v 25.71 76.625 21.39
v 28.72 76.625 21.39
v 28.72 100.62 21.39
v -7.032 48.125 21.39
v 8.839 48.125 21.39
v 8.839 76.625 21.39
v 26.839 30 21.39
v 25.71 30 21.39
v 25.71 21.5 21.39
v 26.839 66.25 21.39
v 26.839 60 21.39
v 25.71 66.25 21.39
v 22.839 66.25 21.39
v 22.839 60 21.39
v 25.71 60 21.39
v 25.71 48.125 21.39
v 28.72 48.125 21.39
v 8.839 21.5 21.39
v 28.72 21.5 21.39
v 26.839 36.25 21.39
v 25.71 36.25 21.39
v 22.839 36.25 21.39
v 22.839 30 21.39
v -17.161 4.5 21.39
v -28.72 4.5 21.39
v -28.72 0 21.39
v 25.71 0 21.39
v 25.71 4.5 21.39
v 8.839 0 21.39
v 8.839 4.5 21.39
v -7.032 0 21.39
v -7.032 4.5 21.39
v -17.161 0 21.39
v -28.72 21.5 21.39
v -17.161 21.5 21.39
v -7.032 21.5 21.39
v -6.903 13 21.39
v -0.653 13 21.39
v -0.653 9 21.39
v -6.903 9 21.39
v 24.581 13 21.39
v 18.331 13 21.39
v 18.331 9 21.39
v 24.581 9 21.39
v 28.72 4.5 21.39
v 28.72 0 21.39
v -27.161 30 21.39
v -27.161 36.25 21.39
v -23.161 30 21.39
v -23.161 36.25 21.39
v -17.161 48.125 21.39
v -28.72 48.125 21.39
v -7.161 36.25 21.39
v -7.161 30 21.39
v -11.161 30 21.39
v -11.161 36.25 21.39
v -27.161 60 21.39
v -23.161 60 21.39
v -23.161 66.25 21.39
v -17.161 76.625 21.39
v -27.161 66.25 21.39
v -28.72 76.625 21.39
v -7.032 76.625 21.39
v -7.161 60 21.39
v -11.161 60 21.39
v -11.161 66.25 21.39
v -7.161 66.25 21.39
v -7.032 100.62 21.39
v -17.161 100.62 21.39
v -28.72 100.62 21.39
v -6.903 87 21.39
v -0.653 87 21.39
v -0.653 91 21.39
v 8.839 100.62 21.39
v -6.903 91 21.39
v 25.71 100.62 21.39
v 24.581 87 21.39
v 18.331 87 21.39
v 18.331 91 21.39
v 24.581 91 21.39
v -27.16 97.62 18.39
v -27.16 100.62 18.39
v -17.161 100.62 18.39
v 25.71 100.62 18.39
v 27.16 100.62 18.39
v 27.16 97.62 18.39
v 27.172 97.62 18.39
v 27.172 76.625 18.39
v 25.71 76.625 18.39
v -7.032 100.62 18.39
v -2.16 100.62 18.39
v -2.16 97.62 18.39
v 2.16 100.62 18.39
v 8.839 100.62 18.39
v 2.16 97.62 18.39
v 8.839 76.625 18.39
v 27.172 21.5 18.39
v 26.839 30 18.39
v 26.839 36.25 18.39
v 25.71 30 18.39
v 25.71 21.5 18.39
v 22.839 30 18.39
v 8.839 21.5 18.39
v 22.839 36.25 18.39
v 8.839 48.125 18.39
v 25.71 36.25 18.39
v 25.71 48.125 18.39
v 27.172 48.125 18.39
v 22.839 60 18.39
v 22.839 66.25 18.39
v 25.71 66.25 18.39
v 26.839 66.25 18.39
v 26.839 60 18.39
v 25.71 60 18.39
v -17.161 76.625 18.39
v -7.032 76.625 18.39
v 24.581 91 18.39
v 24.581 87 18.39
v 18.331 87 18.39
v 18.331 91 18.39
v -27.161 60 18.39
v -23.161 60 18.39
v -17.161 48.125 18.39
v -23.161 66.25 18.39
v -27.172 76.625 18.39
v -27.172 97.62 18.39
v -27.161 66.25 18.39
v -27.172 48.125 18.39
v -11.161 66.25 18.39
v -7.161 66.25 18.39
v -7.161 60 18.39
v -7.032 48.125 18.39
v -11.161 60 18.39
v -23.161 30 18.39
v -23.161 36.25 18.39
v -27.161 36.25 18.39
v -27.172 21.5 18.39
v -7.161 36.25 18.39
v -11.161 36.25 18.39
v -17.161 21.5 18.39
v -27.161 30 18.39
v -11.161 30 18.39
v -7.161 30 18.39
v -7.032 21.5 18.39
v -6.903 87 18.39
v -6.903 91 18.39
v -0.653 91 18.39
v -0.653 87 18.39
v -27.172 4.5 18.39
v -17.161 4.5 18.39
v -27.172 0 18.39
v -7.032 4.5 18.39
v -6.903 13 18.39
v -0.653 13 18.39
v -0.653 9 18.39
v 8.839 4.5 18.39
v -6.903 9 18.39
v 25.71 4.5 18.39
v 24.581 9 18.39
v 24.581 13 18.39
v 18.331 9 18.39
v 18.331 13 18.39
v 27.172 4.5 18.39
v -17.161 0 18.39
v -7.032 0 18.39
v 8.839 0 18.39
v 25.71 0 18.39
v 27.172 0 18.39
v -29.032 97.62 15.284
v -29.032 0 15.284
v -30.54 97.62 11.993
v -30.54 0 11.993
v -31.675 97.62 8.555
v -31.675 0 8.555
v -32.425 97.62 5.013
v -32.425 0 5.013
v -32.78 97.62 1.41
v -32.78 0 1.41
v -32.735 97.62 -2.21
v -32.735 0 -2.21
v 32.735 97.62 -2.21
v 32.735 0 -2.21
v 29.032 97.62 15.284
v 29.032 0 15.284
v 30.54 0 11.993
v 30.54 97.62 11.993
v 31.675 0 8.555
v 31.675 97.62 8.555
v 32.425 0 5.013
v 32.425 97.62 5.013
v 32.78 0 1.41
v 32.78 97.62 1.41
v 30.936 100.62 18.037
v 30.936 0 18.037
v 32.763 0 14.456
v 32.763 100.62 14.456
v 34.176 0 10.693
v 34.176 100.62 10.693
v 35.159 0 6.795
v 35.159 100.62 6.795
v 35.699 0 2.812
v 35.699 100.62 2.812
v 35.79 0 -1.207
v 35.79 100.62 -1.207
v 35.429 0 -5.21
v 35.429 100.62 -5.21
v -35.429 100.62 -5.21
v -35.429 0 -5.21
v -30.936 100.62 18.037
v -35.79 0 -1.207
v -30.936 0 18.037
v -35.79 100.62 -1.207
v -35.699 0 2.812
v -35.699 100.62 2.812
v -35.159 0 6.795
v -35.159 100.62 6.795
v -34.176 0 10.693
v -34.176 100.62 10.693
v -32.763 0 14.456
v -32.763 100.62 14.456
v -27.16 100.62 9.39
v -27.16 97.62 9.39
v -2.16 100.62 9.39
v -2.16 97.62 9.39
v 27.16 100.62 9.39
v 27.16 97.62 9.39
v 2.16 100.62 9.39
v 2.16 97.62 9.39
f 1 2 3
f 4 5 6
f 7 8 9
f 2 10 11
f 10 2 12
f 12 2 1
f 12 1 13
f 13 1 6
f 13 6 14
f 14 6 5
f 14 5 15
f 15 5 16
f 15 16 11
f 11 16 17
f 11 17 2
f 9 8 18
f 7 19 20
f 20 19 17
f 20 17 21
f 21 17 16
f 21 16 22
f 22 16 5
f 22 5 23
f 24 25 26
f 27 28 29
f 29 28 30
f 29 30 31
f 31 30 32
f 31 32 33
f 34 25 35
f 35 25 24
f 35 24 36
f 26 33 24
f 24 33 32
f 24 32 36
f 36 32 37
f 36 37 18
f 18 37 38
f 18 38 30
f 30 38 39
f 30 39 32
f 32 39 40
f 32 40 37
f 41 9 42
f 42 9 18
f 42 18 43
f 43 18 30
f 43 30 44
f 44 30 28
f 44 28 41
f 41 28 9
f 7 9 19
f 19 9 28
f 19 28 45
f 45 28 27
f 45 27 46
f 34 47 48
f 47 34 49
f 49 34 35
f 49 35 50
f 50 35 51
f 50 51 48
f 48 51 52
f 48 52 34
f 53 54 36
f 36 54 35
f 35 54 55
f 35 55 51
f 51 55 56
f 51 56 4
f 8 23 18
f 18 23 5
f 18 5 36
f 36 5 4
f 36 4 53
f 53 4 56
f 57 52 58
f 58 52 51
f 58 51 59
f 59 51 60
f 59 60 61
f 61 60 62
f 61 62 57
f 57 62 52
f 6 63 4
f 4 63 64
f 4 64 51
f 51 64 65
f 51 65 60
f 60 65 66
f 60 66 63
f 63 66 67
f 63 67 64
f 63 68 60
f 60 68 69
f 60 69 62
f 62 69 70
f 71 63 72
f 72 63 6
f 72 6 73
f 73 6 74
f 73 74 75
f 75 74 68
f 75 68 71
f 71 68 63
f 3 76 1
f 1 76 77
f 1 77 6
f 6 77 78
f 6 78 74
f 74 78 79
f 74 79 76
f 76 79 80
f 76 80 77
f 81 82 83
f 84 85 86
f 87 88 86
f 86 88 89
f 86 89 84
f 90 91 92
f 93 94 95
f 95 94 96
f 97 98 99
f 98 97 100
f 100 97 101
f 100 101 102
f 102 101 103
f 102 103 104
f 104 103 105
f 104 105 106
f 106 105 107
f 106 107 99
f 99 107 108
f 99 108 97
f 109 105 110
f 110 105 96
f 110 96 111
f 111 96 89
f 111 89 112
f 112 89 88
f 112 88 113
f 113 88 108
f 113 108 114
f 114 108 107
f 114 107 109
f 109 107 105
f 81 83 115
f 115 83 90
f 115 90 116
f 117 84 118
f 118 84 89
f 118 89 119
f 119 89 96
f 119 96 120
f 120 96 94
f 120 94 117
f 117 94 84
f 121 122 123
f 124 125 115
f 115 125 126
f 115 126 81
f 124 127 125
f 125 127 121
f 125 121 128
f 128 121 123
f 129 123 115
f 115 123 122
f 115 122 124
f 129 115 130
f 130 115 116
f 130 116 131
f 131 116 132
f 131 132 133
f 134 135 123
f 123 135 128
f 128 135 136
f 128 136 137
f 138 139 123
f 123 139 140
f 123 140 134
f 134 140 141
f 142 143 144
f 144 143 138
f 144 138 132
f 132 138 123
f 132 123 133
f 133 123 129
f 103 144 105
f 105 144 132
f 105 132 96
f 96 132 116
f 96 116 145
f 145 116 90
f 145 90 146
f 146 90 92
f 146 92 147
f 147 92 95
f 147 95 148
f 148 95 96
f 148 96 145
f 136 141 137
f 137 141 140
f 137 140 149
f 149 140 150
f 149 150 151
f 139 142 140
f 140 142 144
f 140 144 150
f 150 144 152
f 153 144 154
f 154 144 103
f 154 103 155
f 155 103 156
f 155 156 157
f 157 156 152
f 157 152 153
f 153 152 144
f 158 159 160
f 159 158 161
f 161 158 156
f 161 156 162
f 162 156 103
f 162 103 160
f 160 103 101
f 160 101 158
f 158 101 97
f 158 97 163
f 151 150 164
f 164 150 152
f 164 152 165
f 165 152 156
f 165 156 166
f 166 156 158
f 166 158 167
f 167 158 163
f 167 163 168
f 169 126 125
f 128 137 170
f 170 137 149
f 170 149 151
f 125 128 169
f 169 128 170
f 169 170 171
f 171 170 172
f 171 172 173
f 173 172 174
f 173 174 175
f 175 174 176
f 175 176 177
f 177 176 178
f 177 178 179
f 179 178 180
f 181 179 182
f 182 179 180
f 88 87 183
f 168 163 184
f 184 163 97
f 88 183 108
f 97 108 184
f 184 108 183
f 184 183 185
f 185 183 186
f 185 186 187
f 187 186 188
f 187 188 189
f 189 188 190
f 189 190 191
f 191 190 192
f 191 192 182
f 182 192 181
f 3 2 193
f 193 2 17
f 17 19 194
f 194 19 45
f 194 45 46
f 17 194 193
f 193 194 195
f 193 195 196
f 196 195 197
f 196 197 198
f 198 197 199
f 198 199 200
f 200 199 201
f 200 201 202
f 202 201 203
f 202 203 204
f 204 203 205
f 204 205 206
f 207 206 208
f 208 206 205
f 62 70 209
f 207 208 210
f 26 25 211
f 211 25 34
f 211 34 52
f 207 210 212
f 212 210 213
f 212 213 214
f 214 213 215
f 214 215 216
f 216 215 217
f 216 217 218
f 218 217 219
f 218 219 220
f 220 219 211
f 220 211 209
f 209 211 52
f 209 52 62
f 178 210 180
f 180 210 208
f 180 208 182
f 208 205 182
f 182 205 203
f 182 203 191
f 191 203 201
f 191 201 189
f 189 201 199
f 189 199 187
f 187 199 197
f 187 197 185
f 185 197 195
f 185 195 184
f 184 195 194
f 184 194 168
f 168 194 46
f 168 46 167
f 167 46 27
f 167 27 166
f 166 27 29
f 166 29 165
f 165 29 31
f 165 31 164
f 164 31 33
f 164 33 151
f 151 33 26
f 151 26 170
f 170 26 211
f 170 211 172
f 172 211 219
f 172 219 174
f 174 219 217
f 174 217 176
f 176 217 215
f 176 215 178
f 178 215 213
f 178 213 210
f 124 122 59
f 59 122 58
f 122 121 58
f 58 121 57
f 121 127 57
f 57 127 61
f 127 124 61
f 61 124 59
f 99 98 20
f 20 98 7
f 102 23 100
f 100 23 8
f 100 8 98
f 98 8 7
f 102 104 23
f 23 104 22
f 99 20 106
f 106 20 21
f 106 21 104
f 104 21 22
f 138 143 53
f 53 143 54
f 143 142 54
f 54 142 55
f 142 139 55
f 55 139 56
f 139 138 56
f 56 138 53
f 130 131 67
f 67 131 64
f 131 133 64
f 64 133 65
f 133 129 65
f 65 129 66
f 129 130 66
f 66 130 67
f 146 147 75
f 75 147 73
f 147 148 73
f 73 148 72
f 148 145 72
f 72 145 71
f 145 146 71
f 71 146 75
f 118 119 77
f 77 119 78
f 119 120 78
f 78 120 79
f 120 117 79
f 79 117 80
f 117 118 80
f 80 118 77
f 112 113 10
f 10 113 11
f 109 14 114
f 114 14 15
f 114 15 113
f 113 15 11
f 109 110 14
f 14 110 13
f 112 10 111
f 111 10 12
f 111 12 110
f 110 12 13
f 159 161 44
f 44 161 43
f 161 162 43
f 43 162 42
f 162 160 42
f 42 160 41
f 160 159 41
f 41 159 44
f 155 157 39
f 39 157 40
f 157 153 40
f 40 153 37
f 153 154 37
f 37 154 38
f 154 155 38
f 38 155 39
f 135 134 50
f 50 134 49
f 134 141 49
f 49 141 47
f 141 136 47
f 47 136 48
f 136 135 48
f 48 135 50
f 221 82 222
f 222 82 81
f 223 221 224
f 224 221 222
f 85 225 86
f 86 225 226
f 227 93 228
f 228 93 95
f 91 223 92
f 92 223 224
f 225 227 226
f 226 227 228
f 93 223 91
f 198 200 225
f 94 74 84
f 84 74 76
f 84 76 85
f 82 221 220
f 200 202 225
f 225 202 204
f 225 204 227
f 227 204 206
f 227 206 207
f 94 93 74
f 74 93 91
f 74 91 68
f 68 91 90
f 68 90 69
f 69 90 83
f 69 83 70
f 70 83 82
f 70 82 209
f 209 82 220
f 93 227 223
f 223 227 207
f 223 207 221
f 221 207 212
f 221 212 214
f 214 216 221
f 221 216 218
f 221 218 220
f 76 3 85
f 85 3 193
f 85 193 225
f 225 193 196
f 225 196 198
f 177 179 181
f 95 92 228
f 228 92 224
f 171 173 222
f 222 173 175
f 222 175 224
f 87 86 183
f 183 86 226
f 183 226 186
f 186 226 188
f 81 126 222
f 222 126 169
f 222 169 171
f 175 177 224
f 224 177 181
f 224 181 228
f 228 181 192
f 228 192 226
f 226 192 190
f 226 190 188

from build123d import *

# Parameters (mm, degrees)
BOSS_EXTRUDE1_DEPTH = 97.62
SKETCH2_W           = 4
SKETCH2_H           = 6.25
SKETCH2_W_2         = 6.25
SKETCH2_H_2         = 4
CUT_EXTRUDE1_DEPTH  = 3
SKETCH5_W           = 25
SKETCH5_H           = 9
BOSS_EXTRUDE4_DEPTH = 3


with BuildPart() as part:
    # Sketch1 → Boss-Extrude1 (new body)
    with BuildSketch(Plane(origin=(0, 0, 0), x_dir=(1, 0, 0), z_dir=(0, 1, 0))):
        with BuildLine():
            Line((-32.735485333, 2.21), (-35.741740305, 2.21))
            ThreePointArc((-35.741740305, 2.21), (-34.793989799, -8.469614742), (-30.727251748, -18.39))
            Line((-30.727251748, -18.39), (-27.171750036, -18.39))
            ThreePointArc((-27.171750036, -18.39), (-31.675056628, -8.554933525), (-32.735485333, 2.21))
        make_face()
        with BuildLine():
            ThreePointArc((35.81, 0), (35.792931008, 1.105526954), (35.741740305, 2.21))
            Line((35.741740305, 2.21), (32.735485333, 2.21))
            ThreePointArc((32.735485333, 2.21), (32.791366042, 1.105627925), (32.81, 0))
            ThreePointArc((32.81, 0), (31.368783995, -9.617457599), (27.171750036, -18.39))
            Line((27.171750036, -18.39), (30.727251748, -18.39))
            ThreePointArc((30.727251748, -18.39), (34.515930996, -9.539738332), (35.81, 0))
        make_face()
        with BuildLine():
            ThreePointArc((-30.727251748, -18.39), (-29.761325298, -19.915311108), (-28.719749303, -21.39))
            Line((-28.719749303, -21.39), (-24.878987118, -21.39))
            ThreePointArc((-24.878987118, -21.39), (-26.06855979, -19.923009071), (-27.171750036, -18.39))
            Line((-27.171750036, -18.39), (-30.727251748, -18.39))
        make_face()
        with BuildLine():
            Line((24.878987118, -21.39), (28.719749303, -21.39))
            ThreePointArc((28.719749303, -21.39), (29.761325298, -19.915311108), (30.727251748, -18.39))
            Line((30.727251748, -18.39), (27.171750036, -18.39))
            ThreePointArc((27.171750036, -18.39), (26.06855979, -19.923009071), (24.878987118, -21.39))
        make_face()
        with BuildLine():
            ThreePointArc((-27.171750036, -18.39), (-26.06855979, -19.923009071), (-24.878987118, -21.39))
            Line((-24.878987118, -21.39), (24.878987118, -21.39))
            ThreePointArc((24.878987118, -21.39), (26.06855979, -19.923009071), (27.171750036, -18.39))
            Line((27.171750036, -18.39), (-27.171750036, -18.39))
        make_face()
        with BuildLine():
            Line((-32.393703092, 5.21), (-35.428971196, 5.21))
            ThreePointArc((-35.428971196, 5.21), (-35.616955848, 3.713294511), (-35.741740305, 2.21))
            Line((-35.741740305, 2.21), (-32.735485333, 2.21))
            ThreePointArc((-32.735485333, 2.21), (-32.59912263, 3.713933733), (-32.393703092, 5.21))
        make_face()
        with BuildLine():
            ThreePointArc((35.741740305, 2.21), (35.616955848, 3.713294511), (35.428971196, 5.21))
            Line((35.428971196, 5.21), (32.393703092, 5.21))
            ThreePointArc((32.393703092, 5.21), (32.59912263, 3.713933733), (32.735485333, 2.21))
            Line((32.735485333, 2.21), (35.741740305, 2.21))
        make_face()
        with BuildLine():
            Line((32.393703092, 5.21), (-32.393703092, 5.21))
            ThreePointArc((-32.393703092, 5.21), (-32.59912263, 3.713933733), (-32.735485333, 2.21))
            Line((-32.735485333, 2.21), (32.735485333, 2.21))
            ThreePointArc((32.735485333, 2.21), (32.59912263, 3.713933733), (32.393703092, 5.21))
        make_face()
        with BuildLine():
            Line((-32.393703092, 5.21), (-35.428971196, 5.21))
            ThreePointArc((-35.428971196, 5.21), (-35.616955848, 3.713294511), (-35.741740305, 2.21))
            Line((-35.741740305, 2.21), (-32.735485333, 2.21))
            ThreePointArc((-32.735485333, 2.21), (-32.59912263, 3.713933733), (-32.393703092, 5.21))
        make_face()
        with BuildLine():
            ThreePointArc((35.741740305, 2.21), (35.616955848, 3.713294511), (35.428971196, 5.21))
            Line((35.428971196, 5.21), (32.393703092, 5.21))
            ThreePointArc((32.393703092, 5.21), (32.59912263, 3.713933733), (32.735485333, 2.21))
            Line((32.735485333, 2.21), (35.741740305, 2.21))
        make_face()
        with BuildLine():
            Line((-32.735485333, 2.21), (-35.741740305, 2.21))
            ThreePointArc((-35.741740305, 2.21), (-34.793989799, -8.469614742), (-30.727251748, -18.39))
            Line((-30.727251748, -18.39), (-27.171750036, -18.39))
            ThreePointArc((-27.171750036, -18.39), (-31.675056628, -8.554933525), (-32.735485333, 2.21))
        make_face()
        with BuildLine():
            ThreePointArc((35.81, 0), (35.792931008, 1.105526954), (35.741740305, 2.21))
            Line((35.741740305, 2.21), (32.735485333, 2.21))
            ThreePointArc((32.735485333, 2.21), (32.791366042, 1.105627925), (32.81, 0))
            ThreePointArc((32.81, 0), (31.368783995, -9.617457599), (27.171750036, -18.39))
            Line((27.171750036, -18.39), (30.727251748, -18.39))
            ThreePointArc((30.727251748, -18.39), (34.515930996, -9.539738332), (35.81, 0))
        make_face()
        with BuildLine():
            ThreePointArc((-30.727251748, -18.39), (-29.761325298, -19.915311108), (-28.719749303, -21.39))
            Line((-28.719749303, -21.39), (-24.878987118, -21.39))
            ThreePointArc((-24.878987118, -21.39), (-26.06855979, -19.923009071), (-27.171750036, -18.39))
            Line((-27.171750036, -18.39), (-30.727251748, -18.39))
        make_face()
        with BuildLine():
            Line((24.878987118, -21.39), (28.719749303, -21.39))
            ThreePointArc((28.719749303, -21.39), (29.761325298, -19.915311108), (30.727251748, -18.39))
            Line((30.727251748, -18.39), (27.171750036, -18.39))
            ThreePointArc((27.171750036, -18.39), (26.06855979, -19.923009071), (24.878987118, -21.39))
        make_face()
    extrude(amount=BOSS_EXTRUDE1_DEPTH)

    # Sketch2 → Cut-Extrude1 (cut)
    with BuildSketch(Plane(origin=(-23.61, 0, 21.39), x_dir=(-1, 0, 0), z_dir=(0, 0, -1))):
        with Locations((1.550812332, 63.125)):
            Rectangle(SKETCH2_W, SKETCH2_H)
        with Locations((-14.449187668, 33.125)):
            Rectangle(SKETCH2_W, SKETCH2_H)
        with Locations((-14.449187668, 63.125)):
            Rectangle(SKETCH2_W, SKETCH2_H)
        with Locations((-19.832327081, 89)):
            Rectangle(SKETCH2_W_2, SKETCH2_H_2)
        with Locations((-45.066048255, 89)):
            Rectangle(SKETCH2_W_2, SKETCH2_H_2)
        with Locations((-48.449187668, 63.125)):
            Rectangle(SKETCH2_W, SKETCH2_H)
        with Locations((-45.066048255, 11)):
            Rectangle(SKETCH2_W_2, SKETCH2_H_2)
        with Locations((-19.832327081, 11)):
            Rectangle(SKETCH2_W_2, SKETCH2_H_2)
        with Locations((1.550812332, 33.125)):
            Rectangle(SKETCH2_W, SKETCH2_H)
        with Locations((-48.449187668, 33.125)):
            Rectangle(SKETCH2_W, SKETCH2_H)
    extrude(amount=CUT_EXTRUDE1_DEPTH, mode=Mode.SUBTRACT)

    # Sketch5 → Boss-Extrude4 (add)
    with BuildSketch(Plane(origin=(0, 97.62, 0), x_dir=(1, 0, 0), z_dir=(0, 1, 0))):
        with BuildLine():
            Line((35.428971196, 5.21), (-35.428971196, 5.21))
            ThreePointArc((-35.428971196, 5.21), (-34.722537139, -8.757940089), (-28.719749303, -21.39))
            Line((-28.719749303, -21.39), (28.719749303, -21.39))
            ThreePointArc((28.719749303, -21.39), (34.722537139, -8.757940089), (35.428971196, 5.21))
        make_face()
        with Locations((-14.660228428, -13.89)):
            Rectangle(SKETCH5_W, SKETCH5_H, mode=Mode.SUBTRACT)
        with Locations((14.660228428, -13.89)):
            Rectangle(SKETCH5_W, SKETCH5_H, mode=Mode.SUBTRACT)
    extrude(amount=BOSS_EXTRUDE4_DEPTH)


solid = part.part
